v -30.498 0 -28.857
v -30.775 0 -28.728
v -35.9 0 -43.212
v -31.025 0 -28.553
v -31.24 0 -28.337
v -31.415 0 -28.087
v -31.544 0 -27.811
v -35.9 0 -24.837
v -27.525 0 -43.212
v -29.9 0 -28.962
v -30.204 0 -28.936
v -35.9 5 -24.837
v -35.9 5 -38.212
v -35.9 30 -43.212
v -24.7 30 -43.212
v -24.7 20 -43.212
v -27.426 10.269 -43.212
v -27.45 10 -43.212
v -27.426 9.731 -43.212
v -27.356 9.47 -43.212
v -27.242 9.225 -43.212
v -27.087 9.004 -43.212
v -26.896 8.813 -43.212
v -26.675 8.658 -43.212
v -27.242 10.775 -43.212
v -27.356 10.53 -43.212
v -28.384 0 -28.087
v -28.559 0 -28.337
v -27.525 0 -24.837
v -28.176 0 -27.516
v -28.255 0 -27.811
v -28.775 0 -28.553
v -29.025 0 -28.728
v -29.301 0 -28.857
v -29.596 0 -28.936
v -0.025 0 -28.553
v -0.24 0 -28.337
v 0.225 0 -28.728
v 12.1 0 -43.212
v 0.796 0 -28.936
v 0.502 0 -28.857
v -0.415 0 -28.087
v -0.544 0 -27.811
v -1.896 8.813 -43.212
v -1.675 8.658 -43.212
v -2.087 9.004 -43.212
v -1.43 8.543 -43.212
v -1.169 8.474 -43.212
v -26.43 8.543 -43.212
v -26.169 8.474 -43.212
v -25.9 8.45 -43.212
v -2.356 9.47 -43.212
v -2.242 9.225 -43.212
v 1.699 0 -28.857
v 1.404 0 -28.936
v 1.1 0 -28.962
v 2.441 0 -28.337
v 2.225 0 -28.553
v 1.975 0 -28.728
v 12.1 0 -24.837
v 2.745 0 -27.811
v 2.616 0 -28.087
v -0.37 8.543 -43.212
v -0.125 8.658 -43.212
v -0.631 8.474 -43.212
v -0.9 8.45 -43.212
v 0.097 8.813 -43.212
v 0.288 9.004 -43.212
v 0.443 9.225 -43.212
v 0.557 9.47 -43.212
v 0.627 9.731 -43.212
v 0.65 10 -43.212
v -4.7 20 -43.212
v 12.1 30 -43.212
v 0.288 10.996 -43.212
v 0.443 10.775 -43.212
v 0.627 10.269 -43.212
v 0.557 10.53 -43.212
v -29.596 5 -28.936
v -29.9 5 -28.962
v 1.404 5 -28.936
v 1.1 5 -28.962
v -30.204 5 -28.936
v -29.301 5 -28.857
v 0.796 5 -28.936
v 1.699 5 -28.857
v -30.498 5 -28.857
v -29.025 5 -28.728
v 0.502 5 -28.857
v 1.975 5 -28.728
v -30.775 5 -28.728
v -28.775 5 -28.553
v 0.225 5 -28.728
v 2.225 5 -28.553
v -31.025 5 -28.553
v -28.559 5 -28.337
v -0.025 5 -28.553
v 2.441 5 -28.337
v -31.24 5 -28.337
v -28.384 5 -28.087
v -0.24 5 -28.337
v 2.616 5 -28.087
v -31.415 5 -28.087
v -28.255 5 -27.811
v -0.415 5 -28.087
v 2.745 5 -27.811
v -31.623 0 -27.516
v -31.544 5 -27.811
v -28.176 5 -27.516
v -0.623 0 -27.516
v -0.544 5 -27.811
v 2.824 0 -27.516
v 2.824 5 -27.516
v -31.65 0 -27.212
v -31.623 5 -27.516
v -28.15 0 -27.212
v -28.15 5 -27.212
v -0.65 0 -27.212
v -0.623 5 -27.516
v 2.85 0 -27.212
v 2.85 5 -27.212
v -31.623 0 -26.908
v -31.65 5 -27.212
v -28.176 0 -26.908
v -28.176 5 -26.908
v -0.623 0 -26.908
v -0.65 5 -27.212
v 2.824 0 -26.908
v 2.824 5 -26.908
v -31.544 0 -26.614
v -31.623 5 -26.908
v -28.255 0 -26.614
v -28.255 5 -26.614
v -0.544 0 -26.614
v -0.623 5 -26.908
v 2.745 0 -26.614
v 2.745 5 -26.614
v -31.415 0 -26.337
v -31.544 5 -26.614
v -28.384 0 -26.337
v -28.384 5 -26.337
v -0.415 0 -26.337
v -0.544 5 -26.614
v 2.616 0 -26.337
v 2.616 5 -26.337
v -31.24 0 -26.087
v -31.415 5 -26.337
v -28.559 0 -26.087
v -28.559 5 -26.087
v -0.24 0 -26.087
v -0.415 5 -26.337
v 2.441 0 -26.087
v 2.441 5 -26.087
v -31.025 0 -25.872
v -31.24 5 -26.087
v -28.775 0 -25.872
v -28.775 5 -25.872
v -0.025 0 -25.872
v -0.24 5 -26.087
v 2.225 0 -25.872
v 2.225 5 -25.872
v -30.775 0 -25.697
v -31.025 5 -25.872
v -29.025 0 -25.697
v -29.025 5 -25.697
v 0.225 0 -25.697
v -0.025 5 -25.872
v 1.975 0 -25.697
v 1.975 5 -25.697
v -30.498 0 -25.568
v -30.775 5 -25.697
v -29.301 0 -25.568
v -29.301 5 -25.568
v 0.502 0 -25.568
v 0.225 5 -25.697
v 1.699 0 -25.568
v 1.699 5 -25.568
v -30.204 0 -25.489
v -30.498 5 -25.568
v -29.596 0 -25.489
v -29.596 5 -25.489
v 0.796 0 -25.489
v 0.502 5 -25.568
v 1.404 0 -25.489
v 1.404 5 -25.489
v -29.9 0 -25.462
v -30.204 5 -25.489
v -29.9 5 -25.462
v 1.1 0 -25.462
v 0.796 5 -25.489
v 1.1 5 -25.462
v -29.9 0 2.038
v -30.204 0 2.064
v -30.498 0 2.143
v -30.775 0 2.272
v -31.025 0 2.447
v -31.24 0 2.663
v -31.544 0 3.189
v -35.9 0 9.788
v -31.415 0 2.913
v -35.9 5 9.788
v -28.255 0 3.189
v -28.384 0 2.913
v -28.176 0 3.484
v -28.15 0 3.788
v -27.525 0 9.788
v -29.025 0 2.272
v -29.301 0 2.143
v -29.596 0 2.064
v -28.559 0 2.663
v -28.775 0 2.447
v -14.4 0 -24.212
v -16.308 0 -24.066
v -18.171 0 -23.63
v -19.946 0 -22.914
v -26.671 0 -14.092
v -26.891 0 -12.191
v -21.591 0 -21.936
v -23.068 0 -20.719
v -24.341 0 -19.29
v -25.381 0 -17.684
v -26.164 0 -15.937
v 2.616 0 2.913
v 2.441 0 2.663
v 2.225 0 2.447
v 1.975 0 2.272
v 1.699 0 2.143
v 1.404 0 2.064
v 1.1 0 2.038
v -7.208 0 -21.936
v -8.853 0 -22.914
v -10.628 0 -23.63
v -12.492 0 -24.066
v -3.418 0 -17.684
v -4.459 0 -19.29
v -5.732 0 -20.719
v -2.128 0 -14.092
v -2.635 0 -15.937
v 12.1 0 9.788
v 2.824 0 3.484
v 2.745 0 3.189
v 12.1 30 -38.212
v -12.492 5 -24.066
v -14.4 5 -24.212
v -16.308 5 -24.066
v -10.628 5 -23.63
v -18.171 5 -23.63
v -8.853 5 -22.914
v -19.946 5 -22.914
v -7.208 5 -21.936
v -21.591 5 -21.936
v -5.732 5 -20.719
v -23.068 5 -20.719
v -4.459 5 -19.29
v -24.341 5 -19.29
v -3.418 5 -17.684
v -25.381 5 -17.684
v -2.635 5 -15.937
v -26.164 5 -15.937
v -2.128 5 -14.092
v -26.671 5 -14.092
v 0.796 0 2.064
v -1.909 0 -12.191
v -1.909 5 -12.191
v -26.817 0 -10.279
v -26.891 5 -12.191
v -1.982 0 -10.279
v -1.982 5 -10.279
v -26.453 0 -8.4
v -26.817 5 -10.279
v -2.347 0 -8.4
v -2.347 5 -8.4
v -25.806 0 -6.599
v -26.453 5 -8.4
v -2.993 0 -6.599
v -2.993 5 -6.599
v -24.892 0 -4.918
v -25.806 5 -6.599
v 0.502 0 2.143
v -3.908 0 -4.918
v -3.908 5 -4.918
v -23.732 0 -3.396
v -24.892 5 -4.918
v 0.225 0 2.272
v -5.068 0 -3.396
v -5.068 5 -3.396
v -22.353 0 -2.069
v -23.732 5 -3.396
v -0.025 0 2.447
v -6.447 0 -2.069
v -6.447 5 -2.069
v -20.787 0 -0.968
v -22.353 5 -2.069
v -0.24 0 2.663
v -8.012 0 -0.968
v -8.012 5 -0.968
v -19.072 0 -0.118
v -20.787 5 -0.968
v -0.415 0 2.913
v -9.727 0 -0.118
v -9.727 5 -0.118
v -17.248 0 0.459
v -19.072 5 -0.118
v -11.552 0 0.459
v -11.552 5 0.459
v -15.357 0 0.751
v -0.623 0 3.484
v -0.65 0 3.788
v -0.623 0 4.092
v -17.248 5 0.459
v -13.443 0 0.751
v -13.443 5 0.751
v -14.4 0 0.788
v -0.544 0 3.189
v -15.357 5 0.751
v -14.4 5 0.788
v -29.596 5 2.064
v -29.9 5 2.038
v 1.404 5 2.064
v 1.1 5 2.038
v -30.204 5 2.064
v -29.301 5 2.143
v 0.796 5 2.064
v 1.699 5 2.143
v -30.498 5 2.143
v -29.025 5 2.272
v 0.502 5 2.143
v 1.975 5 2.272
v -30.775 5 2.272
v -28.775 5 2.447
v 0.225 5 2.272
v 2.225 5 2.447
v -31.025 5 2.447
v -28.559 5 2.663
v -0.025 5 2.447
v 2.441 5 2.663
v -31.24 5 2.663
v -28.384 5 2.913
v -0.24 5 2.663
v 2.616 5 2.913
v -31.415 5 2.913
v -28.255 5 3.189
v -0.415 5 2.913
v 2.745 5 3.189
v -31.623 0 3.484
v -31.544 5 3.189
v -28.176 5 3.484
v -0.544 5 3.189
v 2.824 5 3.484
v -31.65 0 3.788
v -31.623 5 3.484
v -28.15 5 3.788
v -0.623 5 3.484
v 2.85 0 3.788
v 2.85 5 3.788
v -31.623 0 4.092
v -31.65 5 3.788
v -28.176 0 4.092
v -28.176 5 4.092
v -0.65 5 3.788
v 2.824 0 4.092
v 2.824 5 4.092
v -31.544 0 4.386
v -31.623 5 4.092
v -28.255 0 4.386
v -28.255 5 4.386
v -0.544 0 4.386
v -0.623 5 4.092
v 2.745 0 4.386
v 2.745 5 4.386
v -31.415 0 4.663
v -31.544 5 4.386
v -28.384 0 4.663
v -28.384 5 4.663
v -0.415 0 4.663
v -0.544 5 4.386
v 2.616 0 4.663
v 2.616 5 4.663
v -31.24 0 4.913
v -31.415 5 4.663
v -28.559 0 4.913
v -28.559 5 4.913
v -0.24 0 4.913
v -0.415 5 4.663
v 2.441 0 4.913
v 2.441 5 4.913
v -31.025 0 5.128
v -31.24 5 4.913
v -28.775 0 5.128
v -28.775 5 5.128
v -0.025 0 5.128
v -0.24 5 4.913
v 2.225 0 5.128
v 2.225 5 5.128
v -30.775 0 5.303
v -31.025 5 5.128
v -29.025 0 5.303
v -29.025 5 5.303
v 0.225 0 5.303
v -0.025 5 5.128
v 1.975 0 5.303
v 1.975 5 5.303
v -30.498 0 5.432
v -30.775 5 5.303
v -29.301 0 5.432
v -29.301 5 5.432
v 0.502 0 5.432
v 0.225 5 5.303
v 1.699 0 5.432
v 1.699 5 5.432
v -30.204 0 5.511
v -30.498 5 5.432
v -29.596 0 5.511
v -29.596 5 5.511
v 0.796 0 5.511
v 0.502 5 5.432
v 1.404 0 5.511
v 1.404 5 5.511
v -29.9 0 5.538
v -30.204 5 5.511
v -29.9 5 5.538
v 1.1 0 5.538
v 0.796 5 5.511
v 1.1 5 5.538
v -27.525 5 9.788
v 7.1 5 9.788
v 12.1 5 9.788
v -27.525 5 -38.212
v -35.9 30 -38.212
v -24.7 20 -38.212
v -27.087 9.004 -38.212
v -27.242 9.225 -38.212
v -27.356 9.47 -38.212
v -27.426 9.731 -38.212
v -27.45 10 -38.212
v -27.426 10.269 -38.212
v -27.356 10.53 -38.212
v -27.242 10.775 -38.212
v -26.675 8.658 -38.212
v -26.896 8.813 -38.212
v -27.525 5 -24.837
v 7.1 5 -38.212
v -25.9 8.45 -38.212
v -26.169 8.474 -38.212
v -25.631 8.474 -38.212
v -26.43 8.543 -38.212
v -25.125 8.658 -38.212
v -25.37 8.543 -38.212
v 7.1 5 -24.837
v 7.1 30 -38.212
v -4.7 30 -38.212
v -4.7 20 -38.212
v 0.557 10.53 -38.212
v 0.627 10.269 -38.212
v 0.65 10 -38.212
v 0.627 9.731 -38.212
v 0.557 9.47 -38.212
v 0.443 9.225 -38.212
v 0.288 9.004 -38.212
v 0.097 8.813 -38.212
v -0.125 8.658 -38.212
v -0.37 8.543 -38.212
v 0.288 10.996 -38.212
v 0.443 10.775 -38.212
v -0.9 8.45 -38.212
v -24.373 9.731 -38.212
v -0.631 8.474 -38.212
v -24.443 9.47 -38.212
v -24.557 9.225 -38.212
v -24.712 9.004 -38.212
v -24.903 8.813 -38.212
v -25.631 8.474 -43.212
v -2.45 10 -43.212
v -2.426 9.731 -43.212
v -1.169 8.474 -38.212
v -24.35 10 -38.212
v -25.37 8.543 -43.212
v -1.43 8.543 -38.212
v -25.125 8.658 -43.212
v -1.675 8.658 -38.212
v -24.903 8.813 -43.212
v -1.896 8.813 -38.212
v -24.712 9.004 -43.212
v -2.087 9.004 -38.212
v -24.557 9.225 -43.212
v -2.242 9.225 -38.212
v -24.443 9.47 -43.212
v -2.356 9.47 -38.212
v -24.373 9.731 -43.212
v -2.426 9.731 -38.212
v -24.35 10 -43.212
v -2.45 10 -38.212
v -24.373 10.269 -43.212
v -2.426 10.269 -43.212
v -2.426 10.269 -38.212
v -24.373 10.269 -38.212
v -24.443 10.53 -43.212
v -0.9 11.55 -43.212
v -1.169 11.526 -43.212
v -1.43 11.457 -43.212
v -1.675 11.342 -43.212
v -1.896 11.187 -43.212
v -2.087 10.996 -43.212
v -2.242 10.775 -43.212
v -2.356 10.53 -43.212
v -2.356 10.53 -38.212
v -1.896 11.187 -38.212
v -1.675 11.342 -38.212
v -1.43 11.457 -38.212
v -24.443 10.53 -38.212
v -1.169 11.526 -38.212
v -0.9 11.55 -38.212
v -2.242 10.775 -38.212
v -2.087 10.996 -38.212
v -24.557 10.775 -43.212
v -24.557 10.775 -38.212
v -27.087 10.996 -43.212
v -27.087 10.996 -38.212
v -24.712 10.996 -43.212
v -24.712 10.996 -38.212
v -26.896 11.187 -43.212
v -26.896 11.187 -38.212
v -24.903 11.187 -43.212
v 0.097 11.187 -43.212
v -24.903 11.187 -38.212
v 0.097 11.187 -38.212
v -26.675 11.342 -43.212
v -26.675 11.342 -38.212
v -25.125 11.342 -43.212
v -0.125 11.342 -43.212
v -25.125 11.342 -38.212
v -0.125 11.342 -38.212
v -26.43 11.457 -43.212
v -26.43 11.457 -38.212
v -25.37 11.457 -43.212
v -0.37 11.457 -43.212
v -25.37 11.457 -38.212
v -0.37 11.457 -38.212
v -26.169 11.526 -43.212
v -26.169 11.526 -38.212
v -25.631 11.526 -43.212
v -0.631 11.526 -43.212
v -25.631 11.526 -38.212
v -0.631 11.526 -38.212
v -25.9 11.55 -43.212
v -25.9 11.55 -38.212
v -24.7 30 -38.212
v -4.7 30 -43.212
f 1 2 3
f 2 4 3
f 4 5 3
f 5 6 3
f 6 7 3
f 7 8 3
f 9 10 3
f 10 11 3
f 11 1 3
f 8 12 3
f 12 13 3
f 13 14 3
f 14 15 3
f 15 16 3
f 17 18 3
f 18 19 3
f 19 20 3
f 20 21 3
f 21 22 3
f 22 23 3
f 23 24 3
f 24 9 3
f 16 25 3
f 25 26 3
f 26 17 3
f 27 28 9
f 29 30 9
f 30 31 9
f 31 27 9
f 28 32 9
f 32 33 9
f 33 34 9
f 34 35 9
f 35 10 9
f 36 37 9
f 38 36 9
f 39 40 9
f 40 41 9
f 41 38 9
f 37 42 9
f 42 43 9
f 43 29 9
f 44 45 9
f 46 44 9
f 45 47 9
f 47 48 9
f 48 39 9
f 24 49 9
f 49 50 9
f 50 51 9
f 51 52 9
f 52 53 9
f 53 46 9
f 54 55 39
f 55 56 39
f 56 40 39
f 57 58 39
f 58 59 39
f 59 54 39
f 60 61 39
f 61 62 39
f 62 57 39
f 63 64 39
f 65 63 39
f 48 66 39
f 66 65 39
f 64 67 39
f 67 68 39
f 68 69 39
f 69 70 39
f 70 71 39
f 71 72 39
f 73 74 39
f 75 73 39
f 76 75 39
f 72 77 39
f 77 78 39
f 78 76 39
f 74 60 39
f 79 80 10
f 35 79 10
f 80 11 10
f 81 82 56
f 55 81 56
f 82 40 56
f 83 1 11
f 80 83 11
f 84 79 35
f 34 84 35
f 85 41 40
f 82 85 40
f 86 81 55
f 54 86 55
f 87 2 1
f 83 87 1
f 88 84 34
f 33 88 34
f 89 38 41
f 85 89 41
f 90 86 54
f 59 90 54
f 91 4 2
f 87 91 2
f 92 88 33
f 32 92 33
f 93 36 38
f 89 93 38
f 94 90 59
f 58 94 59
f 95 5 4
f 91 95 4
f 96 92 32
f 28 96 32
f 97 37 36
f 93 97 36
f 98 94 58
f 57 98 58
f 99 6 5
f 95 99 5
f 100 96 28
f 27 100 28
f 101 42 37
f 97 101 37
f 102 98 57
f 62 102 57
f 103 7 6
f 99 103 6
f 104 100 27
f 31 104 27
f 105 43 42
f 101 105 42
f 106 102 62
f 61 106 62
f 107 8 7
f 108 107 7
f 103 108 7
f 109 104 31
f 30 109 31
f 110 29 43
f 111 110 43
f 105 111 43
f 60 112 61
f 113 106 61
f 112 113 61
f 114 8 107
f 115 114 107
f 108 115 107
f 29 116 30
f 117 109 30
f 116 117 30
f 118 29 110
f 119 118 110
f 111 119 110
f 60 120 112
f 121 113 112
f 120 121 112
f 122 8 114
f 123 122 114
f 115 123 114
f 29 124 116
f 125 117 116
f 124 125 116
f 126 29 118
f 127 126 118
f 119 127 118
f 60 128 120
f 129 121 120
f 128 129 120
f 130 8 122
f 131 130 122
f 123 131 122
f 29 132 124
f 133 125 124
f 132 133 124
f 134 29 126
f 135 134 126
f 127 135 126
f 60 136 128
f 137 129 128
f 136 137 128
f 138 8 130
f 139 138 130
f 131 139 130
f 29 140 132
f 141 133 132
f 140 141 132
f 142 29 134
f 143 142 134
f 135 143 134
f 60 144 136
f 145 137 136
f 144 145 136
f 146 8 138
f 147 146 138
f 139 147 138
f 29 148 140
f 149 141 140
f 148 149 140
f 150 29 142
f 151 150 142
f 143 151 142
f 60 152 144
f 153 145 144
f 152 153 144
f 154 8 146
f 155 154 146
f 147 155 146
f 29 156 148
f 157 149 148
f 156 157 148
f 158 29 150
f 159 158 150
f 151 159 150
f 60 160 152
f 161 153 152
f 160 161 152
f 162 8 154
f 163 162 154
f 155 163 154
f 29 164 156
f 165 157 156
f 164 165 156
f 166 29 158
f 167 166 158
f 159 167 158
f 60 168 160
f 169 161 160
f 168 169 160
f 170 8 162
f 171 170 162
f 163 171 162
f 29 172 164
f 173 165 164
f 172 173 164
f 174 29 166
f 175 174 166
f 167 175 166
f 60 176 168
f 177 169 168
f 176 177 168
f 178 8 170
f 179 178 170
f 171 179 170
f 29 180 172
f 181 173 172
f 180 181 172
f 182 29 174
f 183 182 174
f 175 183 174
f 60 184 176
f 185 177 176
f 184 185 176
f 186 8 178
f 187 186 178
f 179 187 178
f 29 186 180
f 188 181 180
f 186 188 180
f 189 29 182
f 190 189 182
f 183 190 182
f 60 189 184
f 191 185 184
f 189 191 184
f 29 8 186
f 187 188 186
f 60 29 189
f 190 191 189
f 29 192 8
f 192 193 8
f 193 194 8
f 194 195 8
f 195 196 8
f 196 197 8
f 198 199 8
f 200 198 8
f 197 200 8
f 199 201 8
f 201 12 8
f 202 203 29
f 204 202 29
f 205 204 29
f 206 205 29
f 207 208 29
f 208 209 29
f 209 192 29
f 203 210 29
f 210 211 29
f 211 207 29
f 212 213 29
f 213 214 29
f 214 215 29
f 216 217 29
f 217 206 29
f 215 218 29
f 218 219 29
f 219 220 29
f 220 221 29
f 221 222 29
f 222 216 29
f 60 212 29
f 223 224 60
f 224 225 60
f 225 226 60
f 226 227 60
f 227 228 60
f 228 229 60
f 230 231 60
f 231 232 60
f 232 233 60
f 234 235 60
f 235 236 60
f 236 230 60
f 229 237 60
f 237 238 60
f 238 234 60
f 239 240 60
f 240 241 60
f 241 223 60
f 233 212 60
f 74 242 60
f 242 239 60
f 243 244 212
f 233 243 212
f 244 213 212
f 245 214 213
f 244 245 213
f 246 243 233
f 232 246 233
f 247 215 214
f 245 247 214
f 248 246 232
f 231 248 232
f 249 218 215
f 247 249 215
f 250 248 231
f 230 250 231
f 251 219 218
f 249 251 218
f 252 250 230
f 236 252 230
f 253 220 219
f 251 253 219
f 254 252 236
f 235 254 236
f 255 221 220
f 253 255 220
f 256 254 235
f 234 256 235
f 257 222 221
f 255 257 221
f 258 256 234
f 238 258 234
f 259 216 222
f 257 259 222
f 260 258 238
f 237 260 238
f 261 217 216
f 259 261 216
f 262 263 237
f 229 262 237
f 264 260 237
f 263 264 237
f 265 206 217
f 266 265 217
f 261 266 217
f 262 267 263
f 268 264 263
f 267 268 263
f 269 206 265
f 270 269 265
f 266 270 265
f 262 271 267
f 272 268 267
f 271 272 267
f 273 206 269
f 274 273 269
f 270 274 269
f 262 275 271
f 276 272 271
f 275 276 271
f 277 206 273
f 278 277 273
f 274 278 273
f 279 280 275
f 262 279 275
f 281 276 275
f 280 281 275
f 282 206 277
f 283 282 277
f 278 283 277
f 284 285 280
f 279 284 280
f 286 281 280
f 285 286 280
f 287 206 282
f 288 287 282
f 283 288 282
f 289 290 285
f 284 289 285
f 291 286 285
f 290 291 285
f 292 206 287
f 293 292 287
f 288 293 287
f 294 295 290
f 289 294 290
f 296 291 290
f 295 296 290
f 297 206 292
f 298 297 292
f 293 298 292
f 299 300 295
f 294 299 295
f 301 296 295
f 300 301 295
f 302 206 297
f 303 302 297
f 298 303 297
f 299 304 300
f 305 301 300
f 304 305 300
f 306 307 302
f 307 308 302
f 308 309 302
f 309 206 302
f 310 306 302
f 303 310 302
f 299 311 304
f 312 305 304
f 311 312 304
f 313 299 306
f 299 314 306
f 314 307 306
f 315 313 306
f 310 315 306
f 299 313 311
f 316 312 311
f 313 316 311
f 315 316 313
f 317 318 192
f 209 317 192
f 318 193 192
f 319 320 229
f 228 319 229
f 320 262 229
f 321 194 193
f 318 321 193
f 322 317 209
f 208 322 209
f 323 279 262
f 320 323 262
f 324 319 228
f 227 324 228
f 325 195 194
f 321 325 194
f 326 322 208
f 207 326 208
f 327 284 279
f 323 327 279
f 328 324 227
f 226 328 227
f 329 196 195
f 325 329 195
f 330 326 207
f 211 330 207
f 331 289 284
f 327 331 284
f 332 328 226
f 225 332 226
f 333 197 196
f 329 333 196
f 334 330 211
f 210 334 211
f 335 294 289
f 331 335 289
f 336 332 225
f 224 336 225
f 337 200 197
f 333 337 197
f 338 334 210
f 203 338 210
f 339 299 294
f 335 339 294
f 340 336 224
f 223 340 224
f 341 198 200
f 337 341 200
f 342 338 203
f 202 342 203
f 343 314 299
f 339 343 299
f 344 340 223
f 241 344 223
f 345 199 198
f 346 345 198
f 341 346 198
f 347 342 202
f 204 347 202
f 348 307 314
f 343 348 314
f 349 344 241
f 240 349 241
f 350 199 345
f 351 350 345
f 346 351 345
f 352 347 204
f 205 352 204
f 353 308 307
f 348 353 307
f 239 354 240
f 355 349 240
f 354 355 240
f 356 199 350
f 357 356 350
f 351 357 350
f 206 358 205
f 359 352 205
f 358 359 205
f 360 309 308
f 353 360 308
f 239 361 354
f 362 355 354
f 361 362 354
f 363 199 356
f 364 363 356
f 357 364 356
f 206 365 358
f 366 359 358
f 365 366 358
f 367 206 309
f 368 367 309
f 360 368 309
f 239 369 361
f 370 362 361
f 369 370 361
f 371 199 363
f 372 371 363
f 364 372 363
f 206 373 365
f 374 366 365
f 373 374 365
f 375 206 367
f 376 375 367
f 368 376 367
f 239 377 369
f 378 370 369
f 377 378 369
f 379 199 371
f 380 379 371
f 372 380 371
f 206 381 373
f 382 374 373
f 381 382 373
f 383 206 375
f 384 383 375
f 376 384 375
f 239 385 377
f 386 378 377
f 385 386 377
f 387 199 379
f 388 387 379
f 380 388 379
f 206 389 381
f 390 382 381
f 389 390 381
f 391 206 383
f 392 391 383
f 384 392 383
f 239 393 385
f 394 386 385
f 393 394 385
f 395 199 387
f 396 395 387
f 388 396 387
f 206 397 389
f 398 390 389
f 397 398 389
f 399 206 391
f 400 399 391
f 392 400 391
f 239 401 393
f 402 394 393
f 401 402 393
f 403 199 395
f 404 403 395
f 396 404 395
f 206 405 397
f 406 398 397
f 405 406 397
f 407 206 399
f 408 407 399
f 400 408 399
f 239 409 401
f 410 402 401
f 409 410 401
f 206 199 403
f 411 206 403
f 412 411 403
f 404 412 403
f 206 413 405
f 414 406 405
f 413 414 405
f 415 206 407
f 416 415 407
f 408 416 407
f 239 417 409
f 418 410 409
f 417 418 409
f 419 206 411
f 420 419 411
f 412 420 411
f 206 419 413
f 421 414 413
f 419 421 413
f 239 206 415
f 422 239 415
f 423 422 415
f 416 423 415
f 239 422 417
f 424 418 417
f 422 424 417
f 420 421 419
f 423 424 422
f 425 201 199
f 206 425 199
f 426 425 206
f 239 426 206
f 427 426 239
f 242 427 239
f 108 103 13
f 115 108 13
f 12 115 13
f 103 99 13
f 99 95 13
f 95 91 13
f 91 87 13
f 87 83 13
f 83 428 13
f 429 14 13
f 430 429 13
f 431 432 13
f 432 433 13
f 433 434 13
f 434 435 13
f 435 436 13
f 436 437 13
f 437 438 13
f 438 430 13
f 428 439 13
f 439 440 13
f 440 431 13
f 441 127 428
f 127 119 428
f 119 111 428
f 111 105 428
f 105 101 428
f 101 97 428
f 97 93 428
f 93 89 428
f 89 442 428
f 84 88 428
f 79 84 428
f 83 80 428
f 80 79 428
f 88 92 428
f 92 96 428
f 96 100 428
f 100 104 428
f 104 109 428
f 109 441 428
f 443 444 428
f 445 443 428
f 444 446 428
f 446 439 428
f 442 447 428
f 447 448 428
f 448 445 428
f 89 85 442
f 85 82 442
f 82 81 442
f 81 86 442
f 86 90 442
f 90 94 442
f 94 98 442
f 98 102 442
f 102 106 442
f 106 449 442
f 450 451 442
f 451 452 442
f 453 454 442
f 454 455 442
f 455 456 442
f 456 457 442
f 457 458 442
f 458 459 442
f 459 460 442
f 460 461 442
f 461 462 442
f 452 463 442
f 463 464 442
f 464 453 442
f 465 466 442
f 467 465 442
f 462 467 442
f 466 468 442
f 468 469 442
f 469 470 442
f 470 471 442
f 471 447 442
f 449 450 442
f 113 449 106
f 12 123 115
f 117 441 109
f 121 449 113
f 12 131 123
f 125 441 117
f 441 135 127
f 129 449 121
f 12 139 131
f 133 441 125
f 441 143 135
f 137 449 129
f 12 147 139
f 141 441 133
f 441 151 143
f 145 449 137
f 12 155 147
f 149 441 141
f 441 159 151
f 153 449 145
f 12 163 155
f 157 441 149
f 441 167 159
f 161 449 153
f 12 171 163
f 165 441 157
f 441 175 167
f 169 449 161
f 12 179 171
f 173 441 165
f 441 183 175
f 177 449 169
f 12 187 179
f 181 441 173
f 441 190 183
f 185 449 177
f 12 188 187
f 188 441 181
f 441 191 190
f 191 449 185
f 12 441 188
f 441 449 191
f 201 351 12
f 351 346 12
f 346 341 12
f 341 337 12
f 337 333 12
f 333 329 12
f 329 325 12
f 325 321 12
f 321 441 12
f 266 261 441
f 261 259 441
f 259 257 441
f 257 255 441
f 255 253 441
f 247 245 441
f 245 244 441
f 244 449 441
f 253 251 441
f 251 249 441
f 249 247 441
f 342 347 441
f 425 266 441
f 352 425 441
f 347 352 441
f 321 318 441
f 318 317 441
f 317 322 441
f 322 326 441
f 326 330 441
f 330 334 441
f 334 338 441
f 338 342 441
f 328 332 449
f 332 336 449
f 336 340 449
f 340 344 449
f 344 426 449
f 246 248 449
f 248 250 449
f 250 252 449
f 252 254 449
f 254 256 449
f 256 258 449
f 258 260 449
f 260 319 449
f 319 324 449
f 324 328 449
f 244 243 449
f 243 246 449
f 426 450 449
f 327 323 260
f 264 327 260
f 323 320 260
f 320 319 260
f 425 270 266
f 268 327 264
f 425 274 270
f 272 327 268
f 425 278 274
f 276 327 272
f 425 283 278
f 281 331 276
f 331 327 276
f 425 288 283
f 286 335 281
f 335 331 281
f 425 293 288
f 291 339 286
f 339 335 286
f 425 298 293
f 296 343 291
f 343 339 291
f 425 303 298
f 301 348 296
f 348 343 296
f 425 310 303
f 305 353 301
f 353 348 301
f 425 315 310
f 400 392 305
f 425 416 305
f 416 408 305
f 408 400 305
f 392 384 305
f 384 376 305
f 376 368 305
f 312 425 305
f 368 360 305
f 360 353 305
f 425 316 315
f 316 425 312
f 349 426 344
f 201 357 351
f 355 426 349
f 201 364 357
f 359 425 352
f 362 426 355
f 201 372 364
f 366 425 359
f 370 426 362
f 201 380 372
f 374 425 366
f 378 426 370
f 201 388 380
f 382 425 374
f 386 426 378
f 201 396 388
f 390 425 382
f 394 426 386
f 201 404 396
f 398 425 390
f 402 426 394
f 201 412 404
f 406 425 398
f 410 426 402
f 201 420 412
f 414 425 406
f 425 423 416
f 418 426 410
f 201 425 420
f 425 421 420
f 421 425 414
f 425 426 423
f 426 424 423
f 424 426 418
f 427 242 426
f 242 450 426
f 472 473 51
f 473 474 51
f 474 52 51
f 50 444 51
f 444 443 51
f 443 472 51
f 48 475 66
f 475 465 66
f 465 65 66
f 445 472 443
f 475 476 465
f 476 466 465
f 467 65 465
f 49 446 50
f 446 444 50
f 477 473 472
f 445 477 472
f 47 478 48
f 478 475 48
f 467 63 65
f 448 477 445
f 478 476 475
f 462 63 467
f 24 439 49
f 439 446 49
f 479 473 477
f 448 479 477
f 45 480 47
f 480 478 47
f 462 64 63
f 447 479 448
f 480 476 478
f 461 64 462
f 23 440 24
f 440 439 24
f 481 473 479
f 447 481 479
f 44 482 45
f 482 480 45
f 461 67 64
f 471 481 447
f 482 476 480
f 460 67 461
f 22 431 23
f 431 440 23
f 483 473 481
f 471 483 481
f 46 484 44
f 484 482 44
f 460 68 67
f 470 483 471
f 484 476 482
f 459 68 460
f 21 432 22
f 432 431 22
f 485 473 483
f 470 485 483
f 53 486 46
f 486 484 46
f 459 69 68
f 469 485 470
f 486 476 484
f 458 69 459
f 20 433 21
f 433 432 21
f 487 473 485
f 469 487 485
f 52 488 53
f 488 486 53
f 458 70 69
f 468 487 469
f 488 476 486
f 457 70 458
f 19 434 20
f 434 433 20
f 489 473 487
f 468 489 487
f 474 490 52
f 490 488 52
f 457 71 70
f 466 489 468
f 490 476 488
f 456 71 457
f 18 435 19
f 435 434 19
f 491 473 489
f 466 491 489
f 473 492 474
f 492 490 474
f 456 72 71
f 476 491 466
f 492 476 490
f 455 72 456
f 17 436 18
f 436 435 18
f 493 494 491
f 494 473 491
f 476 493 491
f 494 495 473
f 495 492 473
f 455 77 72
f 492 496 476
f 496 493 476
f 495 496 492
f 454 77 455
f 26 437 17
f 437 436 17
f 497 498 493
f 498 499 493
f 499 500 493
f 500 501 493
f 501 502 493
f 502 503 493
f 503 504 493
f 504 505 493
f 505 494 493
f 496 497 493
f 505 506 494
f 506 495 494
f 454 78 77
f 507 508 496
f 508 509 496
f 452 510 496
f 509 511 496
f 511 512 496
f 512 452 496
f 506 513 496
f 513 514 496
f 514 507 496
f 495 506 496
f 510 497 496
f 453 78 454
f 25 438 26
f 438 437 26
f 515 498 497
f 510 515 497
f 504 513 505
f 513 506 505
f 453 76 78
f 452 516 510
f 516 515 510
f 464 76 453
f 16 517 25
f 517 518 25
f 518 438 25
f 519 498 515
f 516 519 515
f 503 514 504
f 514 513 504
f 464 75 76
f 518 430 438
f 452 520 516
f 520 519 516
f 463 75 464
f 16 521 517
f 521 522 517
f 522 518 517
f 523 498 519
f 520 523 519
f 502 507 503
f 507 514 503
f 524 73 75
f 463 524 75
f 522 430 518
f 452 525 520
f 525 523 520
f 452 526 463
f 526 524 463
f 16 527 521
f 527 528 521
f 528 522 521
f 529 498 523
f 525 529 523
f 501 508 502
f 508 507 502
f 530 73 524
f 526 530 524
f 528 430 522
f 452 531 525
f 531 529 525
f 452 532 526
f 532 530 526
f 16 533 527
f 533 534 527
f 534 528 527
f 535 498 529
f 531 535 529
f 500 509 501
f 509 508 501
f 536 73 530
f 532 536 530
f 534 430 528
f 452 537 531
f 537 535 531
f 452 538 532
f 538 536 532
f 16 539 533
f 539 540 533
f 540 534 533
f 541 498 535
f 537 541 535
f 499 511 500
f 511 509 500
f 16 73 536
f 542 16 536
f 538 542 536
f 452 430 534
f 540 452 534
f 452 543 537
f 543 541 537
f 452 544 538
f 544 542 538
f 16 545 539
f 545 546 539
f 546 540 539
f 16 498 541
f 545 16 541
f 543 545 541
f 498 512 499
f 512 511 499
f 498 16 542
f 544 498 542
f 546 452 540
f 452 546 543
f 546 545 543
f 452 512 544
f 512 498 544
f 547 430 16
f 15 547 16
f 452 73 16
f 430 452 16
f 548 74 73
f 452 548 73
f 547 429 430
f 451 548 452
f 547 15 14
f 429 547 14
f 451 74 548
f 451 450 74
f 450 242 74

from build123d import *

# Parameters (mm, degrees)
SKETCH_1_W          = 43
SKETCH_1_H          = 43
SKETCH_1_R          = 1.75
SKETCH_1_R_2        = 12.5
EXTRUDE_1_DEPTH     = 5
SKETCH_3_W          = 43
SKETCH_3_H          = 5
EXTRUDE_2_DEPTH     = 5
SKETCH_4_W          = 43
SKETCH_4_H          = 30
EXTRUDE_3_DEPTH     = 5
SKETCH_5_R          = 1.55
CUT_EXTRUDE_1_DEPTH = 68.028261499
EXTRUDE_4_DEPTH     = 5
SKETCH_7_W          = 20
SKETCH_7_H          = 5
CUT_EXTRUDE_2_DEPTH = 10


with BuildPart() as part:
    # 草图1 → 凸台-拉伸1 (new body)
    with BuildSketch(Plane(origin=(0, 0, 0), x_dir=(1, 0, 0), z_dir=(0, 1, 0))):
        with Locations((-14.399691358, 11.712191358)):
            Rectangle(SKETCH_1_W, SKETCH_1_H)
        with Locations(Location((1.100308642, 27.212191358, 0), (0, 0, 270))):
            Circle(SKETCH_1_R, mode=Mode.SUBTRACT)
        with Locations(Location((-29.899691358, 27.212191358, 0), (0, 0, 270))):
            Circle(SKETCH_1_R, mode=Mode.SUBTRACT)
        with Locations(Location((-29.899691358, -3.787808642, 0), (0, 0, 270))):
            Circle(SKETCH_1_R, mode=Mode.SUBTRACT)
        with Locations(Location((1.100308642, -3.787808642, 0), (0, 0, 270))):
            Circle(SKETCH_1_R, mode=Mode.SUBTRACT)
        with Locations(Location((-14.399691358, 11.712191358, 0), (0, 0, 270))):
            Circle(SKETCH_1_R_2, mode=Mode.SUBTRACT)
    extrude(amount=EXTRUDE_1_DEPTH)

    # 草图3 → 凸台-拉伸2 (add)
    with BuildSketch(Plane(origin=(0, 0, -33.212191358), x_dir=(-1, 0, 0), z_dir=(0, 0, -1))):
        with Locations((14.399691358, 2.5)):
            Rectangle(SKETCH_3_W, SKETCH_3_H)
    extrude(amount=EXTRUDE_2_DEPTH)

    # 草图4 → 凸台-拉伸3 (add)
    with BuildSketch(Plane(origin=(0, 0, -38.212191358), x_dir=(-1, 0, 0), z_dir=(0, 0, -1))):
        with Locations((14.399691358, 15)):
            Rectangle(SKETCH_4_W, SKETCH_4_H)
    extrude(amount=EXTRUDE_3_DEPTH)

    # 草图5 → 切除-拉伸1 (cut, through all)
    with BuildSketch(Plane.XY.offset(-38.212191358)):
        with Locations((-0.899691358, 10)):
            Circle(SKETCH_5_R)
        with Locations((-25.899691358, 10)):
            Circle(SKETCH_5_R)
    extrude(amount=-CUT_EXTRUDE_1_DEPTH, mode=Mode.SUBTRACT)

    # 草图6 → 凸台-拉伸4 (add)
    with BuildSketch(Plane(origin=(7.100308642, 0, 0), x_dir=(0, 0, -1), z_dir=(1, 0, 0))):
        Polygon((-9.787808642, 0), (-9.787808642, 5), (38.212191358, 30), (43.212191358, 30), (43.212191358, 0), align=None)
    extrude(amount=EXTRUDE_4_DEPTH)

    # 草图7 → 切除-拉伸2 (cut)
    with BuildSketch(Plane(origin=(0, 30, 0), x_dir=(1, 0, 0), z_dir=(0, 1, 0))):
        with Locations((-14.699691358, 40.712191358)):
            Rectangle(SKETCH_7_W, SKETCH_7_H)
    extrude(amount=-CUT_EXTRUDE_2_DEPTH, mode=Mode.SUBTRACT)


solid = part.part
